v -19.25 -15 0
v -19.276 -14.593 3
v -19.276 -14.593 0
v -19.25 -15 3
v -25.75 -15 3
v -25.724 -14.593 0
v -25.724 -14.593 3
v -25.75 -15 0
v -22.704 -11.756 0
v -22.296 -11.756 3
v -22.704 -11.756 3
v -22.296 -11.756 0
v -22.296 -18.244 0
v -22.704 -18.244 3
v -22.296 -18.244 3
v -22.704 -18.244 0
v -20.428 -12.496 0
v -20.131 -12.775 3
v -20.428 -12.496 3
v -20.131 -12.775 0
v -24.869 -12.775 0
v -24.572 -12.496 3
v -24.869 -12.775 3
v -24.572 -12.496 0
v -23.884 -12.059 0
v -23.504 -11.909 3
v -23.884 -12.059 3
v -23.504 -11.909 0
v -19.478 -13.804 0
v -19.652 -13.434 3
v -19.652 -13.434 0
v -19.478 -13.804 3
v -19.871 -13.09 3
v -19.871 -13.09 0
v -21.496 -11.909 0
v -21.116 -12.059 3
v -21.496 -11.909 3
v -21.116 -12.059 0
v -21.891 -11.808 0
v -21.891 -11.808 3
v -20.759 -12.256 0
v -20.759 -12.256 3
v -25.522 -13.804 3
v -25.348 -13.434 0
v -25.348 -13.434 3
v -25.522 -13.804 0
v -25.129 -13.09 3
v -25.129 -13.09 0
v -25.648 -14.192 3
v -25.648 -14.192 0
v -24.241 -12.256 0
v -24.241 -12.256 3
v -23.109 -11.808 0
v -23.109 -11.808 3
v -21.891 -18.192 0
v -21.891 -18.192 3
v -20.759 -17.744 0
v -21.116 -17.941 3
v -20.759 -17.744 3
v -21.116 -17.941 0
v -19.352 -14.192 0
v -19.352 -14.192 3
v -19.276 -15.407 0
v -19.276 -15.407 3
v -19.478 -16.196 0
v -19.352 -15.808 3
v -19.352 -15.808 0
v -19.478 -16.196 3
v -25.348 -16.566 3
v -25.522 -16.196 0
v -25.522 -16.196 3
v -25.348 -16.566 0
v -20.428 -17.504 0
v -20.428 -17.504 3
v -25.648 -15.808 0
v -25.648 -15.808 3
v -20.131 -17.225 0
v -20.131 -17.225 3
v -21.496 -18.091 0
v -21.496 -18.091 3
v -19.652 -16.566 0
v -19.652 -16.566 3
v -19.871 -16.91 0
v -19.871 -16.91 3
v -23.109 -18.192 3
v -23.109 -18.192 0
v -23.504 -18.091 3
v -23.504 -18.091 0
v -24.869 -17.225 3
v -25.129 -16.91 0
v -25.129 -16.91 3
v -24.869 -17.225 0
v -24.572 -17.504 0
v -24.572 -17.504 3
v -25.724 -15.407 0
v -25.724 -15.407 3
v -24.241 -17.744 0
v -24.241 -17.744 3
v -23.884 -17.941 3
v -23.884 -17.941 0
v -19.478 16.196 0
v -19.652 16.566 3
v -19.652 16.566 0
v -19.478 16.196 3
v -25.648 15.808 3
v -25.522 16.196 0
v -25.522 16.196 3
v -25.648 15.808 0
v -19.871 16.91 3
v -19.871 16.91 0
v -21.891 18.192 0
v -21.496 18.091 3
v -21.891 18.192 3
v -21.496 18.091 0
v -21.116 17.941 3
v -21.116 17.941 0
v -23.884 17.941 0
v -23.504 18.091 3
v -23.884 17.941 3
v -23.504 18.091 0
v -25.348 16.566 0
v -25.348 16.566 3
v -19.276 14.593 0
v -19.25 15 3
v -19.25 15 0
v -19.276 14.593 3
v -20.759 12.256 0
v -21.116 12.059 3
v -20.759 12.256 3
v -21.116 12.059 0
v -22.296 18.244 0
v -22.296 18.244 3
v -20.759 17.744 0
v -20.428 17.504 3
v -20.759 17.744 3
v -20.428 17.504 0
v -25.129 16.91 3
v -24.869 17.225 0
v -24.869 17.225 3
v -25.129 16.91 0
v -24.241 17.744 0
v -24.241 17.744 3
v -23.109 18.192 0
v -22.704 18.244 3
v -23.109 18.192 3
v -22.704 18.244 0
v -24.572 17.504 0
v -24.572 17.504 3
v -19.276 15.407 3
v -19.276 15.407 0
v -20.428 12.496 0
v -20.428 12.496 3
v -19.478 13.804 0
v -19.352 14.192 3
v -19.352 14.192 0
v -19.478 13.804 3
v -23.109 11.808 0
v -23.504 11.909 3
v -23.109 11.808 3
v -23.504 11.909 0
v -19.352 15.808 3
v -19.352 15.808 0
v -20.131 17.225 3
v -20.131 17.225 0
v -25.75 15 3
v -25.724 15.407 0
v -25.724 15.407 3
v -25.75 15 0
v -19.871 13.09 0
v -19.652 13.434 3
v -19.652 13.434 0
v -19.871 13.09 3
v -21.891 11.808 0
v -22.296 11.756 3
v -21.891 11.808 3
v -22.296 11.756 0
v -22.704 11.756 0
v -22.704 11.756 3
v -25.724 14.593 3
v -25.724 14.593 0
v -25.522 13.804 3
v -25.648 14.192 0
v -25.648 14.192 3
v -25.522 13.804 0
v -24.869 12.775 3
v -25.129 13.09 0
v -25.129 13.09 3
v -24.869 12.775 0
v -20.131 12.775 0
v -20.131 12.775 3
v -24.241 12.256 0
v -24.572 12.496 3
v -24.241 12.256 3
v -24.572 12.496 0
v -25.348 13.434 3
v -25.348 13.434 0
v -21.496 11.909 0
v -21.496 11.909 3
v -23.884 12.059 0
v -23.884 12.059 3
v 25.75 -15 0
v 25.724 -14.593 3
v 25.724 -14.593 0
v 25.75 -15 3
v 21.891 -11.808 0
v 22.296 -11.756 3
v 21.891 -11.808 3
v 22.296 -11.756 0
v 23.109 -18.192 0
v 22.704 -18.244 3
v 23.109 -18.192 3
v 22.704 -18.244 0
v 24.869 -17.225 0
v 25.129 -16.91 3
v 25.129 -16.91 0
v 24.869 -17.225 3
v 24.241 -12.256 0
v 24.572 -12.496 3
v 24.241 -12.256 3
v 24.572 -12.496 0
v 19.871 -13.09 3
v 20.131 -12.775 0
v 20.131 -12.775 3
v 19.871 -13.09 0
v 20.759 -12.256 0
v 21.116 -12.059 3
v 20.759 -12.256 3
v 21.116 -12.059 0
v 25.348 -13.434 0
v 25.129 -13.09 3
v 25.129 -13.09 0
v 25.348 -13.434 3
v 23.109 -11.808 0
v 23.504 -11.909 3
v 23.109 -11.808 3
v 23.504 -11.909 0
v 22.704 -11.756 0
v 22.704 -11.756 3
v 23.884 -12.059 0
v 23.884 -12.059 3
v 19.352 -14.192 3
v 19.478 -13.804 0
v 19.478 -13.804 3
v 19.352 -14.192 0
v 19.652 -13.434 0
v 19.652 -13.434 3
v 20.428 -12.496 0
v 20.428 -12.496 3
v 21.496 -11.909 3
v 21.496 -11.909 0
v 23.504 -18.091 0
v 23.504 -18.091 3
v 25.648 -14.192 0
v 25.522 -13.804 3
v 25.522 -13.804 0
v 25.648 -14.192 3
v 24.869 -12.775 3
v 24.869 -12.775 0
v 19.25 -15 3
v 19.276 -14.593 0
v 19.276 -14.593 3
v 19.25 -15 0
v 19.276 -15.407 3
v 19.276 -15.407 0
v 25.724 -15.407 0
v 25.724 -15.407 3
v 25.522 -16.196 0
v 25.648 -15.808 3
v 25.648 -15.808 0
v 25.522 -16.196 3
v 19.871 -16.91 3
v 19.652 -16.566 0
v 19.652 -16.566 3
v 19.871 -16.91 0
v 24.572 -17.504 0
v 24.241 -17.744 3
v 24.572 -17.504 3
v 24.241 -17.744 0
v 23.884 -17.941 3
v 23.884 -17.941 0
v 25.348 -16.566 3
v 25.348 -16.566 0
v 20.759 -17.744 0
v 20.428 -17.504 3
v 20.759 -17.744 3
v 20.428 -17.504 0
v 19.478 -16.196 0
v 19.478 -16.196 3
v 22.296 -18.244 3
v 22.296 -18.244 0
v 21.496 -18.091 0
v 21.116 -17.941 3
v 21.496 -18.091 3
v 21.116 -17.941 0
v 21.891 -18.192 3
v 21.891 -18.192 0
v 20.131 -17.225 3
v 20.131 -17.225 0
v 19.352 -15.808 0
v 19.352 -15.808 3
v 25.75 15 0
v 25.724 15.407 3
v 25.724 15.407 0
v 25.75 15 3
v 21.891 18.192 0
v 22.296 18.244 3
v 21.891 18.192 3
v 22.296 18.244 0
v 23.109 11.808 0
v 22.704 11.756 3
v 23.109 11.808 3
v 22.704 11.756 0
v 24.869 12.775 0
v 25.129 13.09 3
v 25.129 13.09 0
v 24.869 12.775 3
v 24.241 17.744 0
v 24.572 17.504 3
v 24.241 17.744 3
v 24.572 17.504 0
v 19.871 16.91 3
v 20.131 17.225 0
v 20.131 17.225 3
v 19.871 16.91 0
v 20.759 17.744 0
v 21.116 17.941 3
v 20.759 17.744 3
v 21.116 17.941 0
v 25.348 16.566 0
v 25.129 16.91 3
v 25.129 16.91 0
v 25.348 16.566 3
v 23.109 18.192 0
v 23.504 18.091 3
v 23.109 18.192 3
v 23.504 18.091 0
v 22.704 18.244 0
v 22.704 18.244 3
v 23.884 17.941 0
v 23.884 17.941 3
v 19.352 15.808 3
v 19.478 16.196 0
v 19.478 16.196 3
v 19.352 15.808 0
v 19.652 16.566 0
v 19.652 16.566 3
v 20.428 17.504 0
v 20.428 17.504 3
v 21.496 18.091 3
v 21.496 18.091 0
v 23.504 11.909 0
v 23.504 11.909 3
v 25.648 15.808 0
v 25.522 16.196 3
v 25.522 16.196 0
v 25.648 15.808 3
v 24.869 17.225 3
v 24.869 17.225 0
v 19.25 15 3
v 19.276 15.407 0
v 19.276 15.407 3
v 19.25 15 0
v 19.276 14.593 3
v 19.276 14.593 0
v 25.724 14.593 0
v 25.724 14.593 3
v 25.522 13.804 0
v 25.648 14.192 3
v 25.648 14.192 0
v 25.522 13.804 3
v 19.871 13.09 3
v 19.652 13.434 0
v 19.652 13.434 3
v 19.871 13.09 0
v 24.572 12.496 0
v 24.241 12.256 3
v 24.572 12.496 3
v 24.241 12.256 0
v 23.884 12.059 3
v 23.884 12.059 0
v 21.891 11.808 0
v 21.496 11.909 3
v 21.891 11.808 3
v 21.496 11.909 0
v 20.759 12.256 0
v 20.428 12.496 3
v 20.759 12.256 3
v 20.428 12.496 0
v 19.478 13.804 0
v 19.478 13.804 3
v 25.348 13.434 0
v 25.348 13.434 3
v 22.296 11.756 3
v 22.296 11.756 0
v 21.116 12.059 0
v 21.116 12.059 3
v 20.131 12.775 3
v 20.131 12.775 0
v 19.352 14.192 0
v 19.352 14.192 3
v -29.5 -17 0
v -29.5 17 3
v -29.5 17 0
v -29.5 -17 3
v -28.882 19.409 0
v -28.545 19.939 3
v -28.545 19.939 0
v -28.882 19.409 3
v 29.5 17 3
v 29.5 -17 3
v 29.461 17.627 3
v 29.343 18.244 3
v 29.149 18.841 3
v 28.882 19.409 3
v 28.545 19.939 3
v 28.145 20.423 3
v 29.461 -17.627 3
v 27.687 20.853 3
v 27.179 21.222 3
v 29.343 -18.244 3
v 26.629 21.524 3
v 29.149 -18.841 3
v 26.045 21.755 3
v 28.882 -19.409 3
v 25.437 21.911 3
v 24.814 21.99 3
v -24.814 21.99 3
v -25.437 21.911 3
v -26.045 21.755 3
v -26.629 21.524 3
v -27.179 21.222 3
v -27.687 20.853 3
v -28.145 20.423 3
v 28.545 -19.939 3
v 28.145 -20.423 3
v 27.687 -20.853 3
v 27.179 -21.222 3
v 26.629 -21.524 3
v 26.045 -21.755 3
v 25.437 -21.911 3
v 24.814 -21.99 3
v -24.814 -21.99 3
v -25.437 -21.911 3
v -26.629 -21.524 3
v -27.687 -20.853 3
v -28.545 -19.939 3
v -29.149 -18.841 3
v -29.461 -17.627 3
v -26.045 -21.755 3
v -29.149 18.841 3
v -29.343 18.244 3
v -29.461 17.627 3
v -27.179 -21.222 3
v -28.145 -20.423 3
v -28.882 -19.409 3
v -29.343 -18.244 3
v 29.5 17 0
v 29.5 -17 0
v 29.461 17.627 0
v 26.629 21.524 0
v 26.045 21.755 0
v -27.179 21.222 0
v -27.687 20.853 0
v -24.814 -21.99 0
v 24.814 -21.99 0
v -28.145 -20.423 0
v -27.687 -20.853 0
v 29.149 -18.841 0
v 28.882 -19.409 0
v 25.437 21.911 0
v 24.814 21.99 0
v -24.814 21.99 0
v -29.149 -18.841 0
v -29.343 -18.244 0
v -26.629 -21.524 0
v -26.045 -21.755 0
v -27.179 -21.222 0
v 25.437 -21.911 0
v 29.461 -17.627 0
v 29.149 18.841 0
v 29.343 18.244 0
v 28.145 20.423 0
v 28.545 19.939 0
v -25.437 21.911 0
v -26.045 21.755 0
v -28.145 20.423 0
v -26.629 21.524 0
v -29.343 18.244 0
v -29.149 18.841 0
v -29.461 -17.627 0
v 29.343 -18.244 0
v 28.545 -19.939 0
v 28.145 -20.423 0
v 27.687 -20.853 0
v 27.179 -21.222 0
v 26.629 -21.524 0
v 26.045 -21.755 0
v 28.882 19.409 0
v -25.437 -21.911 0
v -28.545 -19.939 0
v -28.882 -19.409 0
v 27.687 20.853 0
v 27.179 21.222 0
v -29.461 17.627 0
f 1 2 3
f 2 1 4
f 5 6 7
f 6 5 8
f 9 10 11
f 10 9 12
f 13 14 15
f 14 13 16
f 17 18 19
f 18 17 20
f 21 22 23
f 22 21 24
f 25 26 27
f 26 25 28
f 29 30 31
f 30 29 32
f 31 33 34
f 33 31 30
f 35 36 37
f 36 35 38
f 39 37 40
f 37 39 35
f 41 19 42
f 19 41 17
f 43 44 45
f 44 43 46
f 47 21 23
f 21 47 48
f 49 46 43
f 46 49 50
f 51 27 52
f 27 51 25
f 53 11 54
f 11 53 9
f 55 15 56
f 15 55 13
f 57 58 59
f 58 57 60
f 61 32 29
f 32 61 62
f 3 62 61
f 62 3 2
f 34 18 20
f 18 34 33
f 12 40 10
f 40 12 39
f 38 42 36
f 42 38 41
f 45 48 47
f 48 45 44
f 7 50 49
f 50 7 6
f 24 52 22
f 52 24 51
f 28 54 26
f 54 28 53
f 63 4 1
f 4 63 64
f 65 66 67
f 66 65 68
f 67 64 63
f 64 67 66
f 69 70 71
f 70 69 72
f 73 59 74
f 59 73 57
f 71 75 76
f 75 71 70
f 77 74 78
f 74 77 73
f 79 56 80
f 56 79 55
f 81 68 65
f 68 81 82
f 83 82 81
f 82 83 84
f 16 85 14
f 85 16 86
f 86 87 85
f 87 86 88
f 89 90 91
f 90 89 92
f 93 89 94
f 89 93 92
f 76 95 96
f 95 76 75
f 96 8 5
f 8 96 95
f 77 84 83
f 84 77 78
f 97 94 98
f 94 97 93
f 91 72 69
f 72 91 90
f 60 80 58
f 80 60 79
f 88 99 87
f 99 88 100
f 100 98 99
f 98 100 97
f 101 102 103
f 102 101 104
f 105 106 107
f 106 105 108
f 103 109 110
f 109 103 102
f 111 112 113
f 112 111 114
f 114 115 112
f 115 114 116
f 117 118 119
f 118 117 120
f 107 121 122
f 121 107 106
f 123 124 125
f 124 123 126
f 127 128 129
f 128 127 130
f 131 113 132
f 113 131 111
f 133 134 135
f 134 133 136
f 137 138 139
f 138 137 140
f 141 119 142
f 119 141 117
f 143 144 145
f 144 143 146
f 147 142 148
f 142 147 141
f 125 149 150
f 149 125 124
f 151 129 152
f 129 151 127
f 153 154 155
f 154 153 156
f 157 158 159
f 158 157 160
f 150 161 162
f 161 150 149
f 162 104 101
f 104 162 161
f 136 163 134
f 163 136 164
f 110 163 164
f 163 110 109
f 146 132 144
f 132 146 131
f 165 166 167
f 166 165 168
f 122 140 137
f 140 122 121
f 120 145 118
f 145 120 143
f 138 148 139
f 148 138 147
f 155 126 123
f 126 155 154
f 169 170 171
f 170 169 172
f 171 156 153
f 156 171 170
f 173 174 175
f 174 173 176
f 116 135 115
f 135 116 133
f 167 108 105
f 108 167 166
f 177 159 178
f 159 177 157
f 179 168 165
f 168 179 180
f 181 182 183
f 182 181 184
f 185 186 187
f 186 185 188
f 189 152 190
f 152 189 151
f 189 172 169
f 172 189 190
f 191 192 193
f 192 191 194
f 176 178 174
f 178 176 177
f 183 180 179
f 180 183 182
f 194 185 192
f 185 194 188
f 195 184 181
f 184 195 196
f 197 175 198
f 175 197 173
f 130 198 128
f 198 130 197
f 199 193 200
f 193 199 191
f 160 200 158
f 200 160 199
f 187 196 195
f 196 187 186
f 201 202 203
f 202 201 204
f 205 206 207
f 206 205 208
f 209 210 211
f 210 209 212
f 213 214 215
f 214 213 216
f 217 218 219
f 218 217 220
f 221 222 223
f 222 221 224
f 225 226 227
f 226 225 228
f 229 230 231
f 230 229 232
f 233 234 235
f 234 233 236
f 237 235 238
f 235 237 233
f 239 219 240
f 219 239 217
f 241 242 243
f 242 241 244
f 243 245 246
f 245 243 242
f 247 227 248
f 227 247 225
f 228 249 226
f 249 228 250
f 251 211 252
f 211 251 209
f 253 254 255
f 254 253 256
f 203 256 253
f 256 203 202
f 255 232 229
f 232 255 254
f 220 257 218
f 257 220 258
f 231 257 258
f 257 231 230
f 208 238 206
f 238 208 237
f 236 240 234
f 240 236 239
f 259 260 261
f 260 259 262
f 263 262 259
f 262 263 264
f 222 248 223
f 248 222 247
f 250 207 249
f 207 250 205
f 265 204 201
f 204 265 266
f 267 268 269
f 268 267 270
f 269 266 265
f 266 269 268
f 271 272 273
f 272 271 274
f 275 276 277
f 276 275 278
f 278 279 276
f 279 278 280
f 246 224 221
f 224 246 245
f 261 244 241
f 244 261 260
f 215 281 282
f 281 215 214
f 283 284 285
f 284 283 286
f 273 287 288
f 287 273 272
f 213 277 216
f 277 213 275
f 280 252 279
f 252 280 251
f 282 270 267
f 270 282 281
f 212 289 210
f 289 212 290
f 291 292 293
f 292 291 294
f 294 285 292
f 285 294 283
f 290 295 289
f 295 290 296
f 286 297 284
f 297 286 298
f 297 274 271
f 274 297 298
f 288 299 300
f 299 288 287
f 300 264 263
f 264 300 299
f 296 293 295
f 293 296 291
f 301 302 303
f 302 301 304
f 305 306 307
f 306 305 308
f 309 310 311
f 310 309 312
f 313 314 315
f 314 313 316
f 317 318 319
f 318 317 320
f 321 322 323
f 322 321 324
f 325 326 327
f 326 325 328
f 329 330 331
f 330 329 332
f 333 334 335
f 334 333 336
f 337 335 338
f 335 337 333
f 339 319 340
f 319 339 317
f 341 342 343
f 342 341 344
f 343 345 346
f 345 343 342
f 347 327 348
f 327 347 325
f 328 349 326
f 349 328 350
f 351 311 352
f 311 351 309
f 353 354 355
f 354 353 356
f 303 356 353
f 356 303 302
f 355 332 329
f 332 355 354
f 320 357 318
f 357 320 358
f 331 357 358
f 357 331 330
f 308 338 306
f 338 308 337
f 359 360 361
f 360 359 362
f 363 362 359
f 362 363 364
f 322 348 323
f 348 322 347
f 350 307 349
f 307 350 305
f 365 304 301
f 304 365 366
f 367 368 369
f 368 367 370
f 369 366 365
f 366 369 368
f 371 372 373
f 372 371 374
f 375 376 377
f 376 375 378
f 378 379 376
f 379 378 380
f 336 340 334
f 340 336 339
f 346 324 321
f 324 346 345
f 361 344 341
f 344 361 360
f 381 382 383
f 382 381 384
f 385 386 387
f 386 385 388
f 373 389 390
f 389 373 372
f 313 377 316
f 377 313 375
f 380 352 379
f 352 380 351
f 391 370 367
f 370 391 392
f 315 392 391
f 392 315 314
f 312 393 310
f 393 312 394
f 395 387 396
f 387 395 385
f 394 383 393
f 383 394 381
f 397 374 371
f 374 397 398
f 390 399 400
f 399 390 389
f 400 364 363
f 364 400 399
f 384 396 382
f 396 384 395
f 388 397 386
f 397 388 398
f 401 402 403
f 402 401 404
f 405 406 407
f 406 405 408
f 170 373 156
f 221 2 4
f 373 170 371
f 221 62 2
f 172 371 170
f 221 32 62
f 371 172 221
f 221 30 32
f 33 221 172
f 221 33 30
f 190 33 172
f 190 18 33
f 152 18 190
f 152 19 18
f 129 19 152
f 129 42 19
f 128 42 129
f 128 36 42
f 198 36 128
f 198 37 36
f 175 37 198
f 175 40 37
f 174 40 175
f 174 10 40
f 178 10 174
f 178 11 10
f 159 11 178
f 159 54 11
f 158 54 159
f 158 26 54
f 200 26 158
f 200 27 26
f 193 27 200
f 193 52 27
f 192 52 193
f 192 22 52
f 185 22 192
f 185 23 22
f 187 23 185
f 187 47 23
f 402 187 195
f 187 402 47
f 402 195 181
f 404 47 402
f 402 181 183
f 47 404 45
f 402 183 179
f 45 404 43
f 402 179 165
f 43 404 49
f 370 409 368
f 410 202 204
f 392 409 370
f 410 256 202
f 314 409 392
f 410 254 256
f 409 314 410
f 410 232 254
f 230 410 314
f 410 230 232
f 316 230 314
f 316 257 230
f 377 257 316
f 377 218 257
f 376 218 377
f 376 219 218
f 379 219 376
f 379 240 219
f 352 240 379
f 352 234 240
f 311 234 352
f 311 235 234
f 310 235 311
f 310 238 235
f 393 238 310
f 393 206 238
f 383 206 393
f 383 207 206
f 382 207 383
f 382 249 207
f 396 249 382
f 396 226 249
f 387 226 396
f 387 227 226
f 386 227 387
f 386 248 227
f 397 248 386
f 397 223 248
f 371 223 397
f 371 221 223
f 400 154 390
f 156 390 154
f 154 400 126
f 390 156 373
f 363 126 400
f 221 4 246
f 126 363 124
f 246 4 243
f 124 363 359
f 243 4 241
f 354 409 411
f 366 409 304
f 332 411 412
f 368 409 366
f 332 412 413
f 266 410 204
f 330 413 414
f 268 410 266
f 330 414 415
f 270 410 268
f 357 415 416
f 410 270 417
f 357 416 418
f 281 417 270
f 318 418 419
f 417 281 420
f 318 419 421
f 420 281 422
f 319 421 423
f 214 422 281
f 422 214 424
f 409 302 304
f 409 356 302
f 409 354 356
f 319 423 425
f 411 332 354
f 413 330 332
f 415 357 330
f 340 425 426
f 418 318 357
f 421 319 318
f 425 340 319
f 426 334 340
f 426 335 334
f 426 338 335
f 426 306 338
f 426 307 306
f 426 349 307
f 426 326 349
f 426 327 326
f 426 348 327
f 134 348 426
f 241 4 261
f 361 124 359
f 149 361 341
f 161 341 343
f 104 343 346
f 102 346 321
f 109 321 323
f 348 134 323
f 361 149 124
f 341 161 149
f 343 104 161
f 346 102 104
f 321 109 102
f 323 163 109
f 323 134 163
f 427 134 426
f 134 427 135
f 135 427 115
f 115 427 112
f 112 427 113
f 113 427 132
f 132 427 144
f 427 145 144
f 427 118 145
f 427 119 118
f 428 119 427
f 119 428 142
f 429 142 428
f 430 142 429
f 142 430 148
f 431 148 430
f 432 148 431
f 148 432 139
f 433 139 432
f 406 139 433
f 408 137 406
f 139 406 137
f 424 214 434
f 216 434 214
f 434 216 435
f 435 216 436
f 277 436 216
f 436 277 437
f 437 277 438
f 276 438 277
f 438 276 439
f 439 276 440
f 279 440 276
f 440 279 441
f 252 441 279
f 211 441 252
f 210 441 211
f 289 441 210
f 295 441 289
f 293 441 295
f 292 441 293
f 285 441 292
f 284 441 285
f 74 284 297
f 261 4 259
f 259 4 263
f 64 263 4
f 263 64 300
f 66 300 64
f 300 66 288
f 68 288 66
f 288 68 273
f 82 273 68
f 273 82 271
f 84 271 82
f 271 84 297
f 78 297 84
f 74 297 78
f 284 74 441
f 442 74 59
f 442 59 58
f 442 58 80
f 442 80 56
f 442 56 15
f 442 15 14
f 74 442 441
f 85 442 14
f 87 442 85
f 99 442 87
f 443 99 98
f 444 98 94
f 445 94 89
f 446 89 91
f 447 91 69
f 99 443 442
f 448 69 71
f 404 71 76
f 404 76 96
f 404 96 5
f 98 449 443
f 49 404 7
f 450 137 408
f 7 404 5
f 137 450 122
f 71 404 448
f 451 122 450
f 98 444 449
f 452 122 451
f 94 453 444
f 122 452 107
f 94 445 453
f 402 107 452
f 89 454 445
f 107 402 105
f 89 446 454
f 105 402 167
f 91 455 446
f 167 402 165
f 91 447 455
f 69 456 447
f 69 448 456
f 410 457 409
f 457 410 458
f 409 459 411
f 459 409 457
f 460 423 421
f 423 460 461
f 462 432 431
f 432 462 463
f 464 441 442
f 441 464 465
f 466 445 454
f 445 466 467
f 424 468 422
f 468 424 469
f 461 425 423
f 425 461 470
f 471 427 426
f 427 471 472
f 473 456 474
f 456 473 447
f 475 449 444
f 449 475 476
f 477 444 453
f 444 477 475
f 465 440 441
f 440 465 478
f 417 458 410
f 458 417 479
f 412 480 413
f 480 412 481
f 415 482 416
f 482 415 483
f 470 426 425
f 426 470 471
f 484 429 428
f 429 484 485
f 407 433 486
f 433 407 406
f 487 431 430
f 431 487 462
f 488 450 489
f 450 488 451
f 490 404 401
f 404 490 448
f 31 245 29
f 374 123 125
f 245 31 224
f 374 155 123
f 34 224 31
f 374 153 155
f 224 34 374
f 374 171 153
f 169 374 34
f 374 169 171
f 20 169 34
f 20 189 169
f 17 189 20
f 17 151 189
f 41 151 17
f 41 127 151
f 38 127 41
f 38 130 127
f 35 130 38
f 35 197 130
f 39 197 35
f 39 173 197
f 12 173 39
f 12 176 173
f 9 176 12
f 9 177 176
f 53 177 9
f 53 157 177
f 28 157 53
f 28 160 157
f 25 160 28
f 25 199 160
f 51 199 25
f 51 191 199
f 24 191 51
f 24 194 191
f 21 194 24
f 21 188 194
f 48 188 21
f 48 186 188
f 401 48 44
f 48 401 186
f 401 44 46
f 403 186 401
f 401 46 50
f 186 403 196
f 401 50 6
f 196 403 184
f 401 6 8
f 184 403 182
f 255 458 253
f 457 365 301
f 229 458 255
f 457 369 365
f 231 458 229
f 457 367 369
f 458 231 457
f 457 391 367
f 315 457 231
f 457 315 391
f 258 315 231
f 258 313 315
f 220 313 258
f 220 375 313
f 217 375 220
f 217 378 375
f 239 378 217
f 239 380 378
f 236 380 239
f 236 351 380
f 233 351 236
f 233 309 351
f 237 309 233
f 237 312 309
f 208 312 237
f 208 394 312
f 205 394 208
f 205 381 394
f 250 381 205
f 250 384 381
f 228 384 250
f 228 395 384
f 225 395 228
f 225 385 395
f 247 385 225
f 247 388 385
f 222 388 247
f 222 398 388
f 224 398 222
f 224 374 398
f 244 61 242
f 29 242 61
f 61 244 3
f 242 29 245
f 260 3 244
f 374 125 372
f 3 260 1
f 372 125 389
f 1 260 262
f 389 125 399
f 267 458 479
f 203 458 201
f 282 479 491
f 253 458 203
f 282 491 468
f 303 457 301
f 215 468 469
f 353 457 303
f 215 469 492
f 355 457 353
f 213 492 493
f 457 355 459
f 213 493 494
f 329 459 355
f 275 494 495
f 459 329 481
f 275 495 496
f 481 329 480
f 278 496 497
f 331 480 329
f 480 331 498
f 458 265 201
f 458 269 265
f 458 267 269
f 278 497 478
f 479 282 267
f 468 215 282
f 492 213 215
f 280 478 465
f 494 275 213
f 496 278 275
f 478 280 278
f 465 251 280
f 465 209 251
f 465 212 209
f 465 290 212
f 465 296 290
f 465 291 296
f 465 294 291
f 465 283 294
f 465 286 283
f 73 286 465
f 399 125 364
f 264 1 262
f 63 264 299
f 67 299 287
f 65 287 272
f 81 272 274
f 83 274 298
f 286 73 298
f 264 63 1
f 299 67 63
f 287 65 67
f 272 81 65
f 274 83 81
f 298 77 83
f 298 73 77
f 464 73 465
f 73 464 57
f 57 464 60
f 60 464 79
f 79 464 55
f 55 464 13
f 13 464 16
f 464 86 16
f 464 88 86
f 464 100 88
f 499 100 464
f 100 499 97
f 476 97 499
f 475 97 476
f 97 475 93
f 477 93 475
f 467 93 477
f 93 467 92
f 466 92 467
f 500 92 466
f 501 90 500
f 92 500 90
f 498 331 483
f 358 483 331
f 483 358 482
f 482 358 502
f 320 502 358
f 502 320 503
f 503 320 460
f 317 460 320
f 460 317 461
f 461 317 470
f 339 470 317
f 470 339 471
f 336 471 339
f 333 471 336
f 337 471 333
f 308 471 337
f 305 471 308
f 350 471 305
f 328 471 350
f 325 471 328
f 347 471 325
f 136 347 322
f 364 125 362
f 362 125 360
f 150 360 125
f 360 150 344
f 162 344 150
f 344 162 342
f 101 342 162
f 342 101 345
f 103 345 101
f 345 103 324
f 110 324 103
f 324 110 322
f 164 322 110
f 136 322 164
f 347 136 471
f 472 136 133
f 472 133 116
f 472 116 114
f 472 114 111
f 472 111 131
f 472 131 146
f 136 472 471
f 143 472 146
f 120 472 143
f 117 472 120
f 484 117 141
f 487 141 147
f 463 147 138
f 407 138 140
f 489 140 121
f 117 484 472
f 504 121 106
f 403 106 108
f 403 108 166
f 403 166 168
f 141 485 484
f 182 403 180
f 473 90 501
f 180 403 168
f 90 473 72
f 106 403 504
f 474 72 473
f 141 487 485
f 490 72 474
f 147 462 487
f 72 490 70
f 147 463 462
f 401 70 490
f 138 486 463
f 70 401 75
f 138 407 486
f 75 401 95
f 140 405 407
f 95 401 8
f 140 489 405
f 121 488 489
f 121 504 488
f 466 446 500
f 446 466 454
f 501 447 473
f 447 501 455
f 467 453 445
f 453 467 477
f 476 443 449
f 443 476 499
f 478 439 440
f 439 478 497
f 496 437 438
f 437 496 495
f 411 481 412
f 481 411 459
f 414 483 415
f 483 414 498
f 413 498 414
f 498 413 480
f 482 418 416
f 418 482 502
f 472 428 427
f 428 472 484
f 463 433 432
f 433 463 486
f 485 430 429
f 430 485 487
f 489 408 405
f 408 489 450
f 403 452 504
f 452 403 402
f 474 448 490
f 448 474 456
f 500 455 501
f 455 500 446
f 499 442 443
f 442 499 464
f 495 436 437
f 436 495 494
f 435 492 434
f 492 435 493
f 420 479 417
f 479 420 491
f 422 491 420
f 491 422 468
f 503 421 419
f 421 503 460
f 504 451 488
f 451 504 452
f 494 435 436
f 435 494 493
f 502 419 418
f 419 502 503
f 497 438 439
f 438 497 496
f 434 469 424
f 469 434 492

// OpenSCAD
$fn = 50;


difference() {
	union() {
		hull() {
			translate(v = [-24.5000000000, 17.0000000000, 0]) {
				cylinder(h = 3, r = 5);
			}
			translate(v = [24.5000000000, 17.0000000000, 0]) {
				cylinder(h = 3, r = 5);
			}
			translate(v = [-24.5000000000, -17.0000000000, 0]) {
				cylinder(h = 3, r = 5);
			}
			translate(v = [24.5000000000, -17.0000000000, 0]) {
				cylinder(h = 3, r = 5);
			}
		}
	}
	union() {
		translate(v = [-22.5000000000, -15.0000000000, -100.0000000000]) {
			cylinder(h = 200, r = 3.2500000000);
		}
		translate(v = [-22.5000000000, 15.0000000000, -100.0000000000]) {
			cylinder(h = 200, r = 3.2500000000);
		}
		translate(v = [22.5000000000, -15.0000000000, -100.0000000000]) {
			cylinder(h = 200, r = 3.2500000000);
		}
		translate(v = [22.5000000000, 15.0000000000, -100.0000000000]) {
			cylinder(h = 200, r = 3.2500000000);
		}
	}
}
